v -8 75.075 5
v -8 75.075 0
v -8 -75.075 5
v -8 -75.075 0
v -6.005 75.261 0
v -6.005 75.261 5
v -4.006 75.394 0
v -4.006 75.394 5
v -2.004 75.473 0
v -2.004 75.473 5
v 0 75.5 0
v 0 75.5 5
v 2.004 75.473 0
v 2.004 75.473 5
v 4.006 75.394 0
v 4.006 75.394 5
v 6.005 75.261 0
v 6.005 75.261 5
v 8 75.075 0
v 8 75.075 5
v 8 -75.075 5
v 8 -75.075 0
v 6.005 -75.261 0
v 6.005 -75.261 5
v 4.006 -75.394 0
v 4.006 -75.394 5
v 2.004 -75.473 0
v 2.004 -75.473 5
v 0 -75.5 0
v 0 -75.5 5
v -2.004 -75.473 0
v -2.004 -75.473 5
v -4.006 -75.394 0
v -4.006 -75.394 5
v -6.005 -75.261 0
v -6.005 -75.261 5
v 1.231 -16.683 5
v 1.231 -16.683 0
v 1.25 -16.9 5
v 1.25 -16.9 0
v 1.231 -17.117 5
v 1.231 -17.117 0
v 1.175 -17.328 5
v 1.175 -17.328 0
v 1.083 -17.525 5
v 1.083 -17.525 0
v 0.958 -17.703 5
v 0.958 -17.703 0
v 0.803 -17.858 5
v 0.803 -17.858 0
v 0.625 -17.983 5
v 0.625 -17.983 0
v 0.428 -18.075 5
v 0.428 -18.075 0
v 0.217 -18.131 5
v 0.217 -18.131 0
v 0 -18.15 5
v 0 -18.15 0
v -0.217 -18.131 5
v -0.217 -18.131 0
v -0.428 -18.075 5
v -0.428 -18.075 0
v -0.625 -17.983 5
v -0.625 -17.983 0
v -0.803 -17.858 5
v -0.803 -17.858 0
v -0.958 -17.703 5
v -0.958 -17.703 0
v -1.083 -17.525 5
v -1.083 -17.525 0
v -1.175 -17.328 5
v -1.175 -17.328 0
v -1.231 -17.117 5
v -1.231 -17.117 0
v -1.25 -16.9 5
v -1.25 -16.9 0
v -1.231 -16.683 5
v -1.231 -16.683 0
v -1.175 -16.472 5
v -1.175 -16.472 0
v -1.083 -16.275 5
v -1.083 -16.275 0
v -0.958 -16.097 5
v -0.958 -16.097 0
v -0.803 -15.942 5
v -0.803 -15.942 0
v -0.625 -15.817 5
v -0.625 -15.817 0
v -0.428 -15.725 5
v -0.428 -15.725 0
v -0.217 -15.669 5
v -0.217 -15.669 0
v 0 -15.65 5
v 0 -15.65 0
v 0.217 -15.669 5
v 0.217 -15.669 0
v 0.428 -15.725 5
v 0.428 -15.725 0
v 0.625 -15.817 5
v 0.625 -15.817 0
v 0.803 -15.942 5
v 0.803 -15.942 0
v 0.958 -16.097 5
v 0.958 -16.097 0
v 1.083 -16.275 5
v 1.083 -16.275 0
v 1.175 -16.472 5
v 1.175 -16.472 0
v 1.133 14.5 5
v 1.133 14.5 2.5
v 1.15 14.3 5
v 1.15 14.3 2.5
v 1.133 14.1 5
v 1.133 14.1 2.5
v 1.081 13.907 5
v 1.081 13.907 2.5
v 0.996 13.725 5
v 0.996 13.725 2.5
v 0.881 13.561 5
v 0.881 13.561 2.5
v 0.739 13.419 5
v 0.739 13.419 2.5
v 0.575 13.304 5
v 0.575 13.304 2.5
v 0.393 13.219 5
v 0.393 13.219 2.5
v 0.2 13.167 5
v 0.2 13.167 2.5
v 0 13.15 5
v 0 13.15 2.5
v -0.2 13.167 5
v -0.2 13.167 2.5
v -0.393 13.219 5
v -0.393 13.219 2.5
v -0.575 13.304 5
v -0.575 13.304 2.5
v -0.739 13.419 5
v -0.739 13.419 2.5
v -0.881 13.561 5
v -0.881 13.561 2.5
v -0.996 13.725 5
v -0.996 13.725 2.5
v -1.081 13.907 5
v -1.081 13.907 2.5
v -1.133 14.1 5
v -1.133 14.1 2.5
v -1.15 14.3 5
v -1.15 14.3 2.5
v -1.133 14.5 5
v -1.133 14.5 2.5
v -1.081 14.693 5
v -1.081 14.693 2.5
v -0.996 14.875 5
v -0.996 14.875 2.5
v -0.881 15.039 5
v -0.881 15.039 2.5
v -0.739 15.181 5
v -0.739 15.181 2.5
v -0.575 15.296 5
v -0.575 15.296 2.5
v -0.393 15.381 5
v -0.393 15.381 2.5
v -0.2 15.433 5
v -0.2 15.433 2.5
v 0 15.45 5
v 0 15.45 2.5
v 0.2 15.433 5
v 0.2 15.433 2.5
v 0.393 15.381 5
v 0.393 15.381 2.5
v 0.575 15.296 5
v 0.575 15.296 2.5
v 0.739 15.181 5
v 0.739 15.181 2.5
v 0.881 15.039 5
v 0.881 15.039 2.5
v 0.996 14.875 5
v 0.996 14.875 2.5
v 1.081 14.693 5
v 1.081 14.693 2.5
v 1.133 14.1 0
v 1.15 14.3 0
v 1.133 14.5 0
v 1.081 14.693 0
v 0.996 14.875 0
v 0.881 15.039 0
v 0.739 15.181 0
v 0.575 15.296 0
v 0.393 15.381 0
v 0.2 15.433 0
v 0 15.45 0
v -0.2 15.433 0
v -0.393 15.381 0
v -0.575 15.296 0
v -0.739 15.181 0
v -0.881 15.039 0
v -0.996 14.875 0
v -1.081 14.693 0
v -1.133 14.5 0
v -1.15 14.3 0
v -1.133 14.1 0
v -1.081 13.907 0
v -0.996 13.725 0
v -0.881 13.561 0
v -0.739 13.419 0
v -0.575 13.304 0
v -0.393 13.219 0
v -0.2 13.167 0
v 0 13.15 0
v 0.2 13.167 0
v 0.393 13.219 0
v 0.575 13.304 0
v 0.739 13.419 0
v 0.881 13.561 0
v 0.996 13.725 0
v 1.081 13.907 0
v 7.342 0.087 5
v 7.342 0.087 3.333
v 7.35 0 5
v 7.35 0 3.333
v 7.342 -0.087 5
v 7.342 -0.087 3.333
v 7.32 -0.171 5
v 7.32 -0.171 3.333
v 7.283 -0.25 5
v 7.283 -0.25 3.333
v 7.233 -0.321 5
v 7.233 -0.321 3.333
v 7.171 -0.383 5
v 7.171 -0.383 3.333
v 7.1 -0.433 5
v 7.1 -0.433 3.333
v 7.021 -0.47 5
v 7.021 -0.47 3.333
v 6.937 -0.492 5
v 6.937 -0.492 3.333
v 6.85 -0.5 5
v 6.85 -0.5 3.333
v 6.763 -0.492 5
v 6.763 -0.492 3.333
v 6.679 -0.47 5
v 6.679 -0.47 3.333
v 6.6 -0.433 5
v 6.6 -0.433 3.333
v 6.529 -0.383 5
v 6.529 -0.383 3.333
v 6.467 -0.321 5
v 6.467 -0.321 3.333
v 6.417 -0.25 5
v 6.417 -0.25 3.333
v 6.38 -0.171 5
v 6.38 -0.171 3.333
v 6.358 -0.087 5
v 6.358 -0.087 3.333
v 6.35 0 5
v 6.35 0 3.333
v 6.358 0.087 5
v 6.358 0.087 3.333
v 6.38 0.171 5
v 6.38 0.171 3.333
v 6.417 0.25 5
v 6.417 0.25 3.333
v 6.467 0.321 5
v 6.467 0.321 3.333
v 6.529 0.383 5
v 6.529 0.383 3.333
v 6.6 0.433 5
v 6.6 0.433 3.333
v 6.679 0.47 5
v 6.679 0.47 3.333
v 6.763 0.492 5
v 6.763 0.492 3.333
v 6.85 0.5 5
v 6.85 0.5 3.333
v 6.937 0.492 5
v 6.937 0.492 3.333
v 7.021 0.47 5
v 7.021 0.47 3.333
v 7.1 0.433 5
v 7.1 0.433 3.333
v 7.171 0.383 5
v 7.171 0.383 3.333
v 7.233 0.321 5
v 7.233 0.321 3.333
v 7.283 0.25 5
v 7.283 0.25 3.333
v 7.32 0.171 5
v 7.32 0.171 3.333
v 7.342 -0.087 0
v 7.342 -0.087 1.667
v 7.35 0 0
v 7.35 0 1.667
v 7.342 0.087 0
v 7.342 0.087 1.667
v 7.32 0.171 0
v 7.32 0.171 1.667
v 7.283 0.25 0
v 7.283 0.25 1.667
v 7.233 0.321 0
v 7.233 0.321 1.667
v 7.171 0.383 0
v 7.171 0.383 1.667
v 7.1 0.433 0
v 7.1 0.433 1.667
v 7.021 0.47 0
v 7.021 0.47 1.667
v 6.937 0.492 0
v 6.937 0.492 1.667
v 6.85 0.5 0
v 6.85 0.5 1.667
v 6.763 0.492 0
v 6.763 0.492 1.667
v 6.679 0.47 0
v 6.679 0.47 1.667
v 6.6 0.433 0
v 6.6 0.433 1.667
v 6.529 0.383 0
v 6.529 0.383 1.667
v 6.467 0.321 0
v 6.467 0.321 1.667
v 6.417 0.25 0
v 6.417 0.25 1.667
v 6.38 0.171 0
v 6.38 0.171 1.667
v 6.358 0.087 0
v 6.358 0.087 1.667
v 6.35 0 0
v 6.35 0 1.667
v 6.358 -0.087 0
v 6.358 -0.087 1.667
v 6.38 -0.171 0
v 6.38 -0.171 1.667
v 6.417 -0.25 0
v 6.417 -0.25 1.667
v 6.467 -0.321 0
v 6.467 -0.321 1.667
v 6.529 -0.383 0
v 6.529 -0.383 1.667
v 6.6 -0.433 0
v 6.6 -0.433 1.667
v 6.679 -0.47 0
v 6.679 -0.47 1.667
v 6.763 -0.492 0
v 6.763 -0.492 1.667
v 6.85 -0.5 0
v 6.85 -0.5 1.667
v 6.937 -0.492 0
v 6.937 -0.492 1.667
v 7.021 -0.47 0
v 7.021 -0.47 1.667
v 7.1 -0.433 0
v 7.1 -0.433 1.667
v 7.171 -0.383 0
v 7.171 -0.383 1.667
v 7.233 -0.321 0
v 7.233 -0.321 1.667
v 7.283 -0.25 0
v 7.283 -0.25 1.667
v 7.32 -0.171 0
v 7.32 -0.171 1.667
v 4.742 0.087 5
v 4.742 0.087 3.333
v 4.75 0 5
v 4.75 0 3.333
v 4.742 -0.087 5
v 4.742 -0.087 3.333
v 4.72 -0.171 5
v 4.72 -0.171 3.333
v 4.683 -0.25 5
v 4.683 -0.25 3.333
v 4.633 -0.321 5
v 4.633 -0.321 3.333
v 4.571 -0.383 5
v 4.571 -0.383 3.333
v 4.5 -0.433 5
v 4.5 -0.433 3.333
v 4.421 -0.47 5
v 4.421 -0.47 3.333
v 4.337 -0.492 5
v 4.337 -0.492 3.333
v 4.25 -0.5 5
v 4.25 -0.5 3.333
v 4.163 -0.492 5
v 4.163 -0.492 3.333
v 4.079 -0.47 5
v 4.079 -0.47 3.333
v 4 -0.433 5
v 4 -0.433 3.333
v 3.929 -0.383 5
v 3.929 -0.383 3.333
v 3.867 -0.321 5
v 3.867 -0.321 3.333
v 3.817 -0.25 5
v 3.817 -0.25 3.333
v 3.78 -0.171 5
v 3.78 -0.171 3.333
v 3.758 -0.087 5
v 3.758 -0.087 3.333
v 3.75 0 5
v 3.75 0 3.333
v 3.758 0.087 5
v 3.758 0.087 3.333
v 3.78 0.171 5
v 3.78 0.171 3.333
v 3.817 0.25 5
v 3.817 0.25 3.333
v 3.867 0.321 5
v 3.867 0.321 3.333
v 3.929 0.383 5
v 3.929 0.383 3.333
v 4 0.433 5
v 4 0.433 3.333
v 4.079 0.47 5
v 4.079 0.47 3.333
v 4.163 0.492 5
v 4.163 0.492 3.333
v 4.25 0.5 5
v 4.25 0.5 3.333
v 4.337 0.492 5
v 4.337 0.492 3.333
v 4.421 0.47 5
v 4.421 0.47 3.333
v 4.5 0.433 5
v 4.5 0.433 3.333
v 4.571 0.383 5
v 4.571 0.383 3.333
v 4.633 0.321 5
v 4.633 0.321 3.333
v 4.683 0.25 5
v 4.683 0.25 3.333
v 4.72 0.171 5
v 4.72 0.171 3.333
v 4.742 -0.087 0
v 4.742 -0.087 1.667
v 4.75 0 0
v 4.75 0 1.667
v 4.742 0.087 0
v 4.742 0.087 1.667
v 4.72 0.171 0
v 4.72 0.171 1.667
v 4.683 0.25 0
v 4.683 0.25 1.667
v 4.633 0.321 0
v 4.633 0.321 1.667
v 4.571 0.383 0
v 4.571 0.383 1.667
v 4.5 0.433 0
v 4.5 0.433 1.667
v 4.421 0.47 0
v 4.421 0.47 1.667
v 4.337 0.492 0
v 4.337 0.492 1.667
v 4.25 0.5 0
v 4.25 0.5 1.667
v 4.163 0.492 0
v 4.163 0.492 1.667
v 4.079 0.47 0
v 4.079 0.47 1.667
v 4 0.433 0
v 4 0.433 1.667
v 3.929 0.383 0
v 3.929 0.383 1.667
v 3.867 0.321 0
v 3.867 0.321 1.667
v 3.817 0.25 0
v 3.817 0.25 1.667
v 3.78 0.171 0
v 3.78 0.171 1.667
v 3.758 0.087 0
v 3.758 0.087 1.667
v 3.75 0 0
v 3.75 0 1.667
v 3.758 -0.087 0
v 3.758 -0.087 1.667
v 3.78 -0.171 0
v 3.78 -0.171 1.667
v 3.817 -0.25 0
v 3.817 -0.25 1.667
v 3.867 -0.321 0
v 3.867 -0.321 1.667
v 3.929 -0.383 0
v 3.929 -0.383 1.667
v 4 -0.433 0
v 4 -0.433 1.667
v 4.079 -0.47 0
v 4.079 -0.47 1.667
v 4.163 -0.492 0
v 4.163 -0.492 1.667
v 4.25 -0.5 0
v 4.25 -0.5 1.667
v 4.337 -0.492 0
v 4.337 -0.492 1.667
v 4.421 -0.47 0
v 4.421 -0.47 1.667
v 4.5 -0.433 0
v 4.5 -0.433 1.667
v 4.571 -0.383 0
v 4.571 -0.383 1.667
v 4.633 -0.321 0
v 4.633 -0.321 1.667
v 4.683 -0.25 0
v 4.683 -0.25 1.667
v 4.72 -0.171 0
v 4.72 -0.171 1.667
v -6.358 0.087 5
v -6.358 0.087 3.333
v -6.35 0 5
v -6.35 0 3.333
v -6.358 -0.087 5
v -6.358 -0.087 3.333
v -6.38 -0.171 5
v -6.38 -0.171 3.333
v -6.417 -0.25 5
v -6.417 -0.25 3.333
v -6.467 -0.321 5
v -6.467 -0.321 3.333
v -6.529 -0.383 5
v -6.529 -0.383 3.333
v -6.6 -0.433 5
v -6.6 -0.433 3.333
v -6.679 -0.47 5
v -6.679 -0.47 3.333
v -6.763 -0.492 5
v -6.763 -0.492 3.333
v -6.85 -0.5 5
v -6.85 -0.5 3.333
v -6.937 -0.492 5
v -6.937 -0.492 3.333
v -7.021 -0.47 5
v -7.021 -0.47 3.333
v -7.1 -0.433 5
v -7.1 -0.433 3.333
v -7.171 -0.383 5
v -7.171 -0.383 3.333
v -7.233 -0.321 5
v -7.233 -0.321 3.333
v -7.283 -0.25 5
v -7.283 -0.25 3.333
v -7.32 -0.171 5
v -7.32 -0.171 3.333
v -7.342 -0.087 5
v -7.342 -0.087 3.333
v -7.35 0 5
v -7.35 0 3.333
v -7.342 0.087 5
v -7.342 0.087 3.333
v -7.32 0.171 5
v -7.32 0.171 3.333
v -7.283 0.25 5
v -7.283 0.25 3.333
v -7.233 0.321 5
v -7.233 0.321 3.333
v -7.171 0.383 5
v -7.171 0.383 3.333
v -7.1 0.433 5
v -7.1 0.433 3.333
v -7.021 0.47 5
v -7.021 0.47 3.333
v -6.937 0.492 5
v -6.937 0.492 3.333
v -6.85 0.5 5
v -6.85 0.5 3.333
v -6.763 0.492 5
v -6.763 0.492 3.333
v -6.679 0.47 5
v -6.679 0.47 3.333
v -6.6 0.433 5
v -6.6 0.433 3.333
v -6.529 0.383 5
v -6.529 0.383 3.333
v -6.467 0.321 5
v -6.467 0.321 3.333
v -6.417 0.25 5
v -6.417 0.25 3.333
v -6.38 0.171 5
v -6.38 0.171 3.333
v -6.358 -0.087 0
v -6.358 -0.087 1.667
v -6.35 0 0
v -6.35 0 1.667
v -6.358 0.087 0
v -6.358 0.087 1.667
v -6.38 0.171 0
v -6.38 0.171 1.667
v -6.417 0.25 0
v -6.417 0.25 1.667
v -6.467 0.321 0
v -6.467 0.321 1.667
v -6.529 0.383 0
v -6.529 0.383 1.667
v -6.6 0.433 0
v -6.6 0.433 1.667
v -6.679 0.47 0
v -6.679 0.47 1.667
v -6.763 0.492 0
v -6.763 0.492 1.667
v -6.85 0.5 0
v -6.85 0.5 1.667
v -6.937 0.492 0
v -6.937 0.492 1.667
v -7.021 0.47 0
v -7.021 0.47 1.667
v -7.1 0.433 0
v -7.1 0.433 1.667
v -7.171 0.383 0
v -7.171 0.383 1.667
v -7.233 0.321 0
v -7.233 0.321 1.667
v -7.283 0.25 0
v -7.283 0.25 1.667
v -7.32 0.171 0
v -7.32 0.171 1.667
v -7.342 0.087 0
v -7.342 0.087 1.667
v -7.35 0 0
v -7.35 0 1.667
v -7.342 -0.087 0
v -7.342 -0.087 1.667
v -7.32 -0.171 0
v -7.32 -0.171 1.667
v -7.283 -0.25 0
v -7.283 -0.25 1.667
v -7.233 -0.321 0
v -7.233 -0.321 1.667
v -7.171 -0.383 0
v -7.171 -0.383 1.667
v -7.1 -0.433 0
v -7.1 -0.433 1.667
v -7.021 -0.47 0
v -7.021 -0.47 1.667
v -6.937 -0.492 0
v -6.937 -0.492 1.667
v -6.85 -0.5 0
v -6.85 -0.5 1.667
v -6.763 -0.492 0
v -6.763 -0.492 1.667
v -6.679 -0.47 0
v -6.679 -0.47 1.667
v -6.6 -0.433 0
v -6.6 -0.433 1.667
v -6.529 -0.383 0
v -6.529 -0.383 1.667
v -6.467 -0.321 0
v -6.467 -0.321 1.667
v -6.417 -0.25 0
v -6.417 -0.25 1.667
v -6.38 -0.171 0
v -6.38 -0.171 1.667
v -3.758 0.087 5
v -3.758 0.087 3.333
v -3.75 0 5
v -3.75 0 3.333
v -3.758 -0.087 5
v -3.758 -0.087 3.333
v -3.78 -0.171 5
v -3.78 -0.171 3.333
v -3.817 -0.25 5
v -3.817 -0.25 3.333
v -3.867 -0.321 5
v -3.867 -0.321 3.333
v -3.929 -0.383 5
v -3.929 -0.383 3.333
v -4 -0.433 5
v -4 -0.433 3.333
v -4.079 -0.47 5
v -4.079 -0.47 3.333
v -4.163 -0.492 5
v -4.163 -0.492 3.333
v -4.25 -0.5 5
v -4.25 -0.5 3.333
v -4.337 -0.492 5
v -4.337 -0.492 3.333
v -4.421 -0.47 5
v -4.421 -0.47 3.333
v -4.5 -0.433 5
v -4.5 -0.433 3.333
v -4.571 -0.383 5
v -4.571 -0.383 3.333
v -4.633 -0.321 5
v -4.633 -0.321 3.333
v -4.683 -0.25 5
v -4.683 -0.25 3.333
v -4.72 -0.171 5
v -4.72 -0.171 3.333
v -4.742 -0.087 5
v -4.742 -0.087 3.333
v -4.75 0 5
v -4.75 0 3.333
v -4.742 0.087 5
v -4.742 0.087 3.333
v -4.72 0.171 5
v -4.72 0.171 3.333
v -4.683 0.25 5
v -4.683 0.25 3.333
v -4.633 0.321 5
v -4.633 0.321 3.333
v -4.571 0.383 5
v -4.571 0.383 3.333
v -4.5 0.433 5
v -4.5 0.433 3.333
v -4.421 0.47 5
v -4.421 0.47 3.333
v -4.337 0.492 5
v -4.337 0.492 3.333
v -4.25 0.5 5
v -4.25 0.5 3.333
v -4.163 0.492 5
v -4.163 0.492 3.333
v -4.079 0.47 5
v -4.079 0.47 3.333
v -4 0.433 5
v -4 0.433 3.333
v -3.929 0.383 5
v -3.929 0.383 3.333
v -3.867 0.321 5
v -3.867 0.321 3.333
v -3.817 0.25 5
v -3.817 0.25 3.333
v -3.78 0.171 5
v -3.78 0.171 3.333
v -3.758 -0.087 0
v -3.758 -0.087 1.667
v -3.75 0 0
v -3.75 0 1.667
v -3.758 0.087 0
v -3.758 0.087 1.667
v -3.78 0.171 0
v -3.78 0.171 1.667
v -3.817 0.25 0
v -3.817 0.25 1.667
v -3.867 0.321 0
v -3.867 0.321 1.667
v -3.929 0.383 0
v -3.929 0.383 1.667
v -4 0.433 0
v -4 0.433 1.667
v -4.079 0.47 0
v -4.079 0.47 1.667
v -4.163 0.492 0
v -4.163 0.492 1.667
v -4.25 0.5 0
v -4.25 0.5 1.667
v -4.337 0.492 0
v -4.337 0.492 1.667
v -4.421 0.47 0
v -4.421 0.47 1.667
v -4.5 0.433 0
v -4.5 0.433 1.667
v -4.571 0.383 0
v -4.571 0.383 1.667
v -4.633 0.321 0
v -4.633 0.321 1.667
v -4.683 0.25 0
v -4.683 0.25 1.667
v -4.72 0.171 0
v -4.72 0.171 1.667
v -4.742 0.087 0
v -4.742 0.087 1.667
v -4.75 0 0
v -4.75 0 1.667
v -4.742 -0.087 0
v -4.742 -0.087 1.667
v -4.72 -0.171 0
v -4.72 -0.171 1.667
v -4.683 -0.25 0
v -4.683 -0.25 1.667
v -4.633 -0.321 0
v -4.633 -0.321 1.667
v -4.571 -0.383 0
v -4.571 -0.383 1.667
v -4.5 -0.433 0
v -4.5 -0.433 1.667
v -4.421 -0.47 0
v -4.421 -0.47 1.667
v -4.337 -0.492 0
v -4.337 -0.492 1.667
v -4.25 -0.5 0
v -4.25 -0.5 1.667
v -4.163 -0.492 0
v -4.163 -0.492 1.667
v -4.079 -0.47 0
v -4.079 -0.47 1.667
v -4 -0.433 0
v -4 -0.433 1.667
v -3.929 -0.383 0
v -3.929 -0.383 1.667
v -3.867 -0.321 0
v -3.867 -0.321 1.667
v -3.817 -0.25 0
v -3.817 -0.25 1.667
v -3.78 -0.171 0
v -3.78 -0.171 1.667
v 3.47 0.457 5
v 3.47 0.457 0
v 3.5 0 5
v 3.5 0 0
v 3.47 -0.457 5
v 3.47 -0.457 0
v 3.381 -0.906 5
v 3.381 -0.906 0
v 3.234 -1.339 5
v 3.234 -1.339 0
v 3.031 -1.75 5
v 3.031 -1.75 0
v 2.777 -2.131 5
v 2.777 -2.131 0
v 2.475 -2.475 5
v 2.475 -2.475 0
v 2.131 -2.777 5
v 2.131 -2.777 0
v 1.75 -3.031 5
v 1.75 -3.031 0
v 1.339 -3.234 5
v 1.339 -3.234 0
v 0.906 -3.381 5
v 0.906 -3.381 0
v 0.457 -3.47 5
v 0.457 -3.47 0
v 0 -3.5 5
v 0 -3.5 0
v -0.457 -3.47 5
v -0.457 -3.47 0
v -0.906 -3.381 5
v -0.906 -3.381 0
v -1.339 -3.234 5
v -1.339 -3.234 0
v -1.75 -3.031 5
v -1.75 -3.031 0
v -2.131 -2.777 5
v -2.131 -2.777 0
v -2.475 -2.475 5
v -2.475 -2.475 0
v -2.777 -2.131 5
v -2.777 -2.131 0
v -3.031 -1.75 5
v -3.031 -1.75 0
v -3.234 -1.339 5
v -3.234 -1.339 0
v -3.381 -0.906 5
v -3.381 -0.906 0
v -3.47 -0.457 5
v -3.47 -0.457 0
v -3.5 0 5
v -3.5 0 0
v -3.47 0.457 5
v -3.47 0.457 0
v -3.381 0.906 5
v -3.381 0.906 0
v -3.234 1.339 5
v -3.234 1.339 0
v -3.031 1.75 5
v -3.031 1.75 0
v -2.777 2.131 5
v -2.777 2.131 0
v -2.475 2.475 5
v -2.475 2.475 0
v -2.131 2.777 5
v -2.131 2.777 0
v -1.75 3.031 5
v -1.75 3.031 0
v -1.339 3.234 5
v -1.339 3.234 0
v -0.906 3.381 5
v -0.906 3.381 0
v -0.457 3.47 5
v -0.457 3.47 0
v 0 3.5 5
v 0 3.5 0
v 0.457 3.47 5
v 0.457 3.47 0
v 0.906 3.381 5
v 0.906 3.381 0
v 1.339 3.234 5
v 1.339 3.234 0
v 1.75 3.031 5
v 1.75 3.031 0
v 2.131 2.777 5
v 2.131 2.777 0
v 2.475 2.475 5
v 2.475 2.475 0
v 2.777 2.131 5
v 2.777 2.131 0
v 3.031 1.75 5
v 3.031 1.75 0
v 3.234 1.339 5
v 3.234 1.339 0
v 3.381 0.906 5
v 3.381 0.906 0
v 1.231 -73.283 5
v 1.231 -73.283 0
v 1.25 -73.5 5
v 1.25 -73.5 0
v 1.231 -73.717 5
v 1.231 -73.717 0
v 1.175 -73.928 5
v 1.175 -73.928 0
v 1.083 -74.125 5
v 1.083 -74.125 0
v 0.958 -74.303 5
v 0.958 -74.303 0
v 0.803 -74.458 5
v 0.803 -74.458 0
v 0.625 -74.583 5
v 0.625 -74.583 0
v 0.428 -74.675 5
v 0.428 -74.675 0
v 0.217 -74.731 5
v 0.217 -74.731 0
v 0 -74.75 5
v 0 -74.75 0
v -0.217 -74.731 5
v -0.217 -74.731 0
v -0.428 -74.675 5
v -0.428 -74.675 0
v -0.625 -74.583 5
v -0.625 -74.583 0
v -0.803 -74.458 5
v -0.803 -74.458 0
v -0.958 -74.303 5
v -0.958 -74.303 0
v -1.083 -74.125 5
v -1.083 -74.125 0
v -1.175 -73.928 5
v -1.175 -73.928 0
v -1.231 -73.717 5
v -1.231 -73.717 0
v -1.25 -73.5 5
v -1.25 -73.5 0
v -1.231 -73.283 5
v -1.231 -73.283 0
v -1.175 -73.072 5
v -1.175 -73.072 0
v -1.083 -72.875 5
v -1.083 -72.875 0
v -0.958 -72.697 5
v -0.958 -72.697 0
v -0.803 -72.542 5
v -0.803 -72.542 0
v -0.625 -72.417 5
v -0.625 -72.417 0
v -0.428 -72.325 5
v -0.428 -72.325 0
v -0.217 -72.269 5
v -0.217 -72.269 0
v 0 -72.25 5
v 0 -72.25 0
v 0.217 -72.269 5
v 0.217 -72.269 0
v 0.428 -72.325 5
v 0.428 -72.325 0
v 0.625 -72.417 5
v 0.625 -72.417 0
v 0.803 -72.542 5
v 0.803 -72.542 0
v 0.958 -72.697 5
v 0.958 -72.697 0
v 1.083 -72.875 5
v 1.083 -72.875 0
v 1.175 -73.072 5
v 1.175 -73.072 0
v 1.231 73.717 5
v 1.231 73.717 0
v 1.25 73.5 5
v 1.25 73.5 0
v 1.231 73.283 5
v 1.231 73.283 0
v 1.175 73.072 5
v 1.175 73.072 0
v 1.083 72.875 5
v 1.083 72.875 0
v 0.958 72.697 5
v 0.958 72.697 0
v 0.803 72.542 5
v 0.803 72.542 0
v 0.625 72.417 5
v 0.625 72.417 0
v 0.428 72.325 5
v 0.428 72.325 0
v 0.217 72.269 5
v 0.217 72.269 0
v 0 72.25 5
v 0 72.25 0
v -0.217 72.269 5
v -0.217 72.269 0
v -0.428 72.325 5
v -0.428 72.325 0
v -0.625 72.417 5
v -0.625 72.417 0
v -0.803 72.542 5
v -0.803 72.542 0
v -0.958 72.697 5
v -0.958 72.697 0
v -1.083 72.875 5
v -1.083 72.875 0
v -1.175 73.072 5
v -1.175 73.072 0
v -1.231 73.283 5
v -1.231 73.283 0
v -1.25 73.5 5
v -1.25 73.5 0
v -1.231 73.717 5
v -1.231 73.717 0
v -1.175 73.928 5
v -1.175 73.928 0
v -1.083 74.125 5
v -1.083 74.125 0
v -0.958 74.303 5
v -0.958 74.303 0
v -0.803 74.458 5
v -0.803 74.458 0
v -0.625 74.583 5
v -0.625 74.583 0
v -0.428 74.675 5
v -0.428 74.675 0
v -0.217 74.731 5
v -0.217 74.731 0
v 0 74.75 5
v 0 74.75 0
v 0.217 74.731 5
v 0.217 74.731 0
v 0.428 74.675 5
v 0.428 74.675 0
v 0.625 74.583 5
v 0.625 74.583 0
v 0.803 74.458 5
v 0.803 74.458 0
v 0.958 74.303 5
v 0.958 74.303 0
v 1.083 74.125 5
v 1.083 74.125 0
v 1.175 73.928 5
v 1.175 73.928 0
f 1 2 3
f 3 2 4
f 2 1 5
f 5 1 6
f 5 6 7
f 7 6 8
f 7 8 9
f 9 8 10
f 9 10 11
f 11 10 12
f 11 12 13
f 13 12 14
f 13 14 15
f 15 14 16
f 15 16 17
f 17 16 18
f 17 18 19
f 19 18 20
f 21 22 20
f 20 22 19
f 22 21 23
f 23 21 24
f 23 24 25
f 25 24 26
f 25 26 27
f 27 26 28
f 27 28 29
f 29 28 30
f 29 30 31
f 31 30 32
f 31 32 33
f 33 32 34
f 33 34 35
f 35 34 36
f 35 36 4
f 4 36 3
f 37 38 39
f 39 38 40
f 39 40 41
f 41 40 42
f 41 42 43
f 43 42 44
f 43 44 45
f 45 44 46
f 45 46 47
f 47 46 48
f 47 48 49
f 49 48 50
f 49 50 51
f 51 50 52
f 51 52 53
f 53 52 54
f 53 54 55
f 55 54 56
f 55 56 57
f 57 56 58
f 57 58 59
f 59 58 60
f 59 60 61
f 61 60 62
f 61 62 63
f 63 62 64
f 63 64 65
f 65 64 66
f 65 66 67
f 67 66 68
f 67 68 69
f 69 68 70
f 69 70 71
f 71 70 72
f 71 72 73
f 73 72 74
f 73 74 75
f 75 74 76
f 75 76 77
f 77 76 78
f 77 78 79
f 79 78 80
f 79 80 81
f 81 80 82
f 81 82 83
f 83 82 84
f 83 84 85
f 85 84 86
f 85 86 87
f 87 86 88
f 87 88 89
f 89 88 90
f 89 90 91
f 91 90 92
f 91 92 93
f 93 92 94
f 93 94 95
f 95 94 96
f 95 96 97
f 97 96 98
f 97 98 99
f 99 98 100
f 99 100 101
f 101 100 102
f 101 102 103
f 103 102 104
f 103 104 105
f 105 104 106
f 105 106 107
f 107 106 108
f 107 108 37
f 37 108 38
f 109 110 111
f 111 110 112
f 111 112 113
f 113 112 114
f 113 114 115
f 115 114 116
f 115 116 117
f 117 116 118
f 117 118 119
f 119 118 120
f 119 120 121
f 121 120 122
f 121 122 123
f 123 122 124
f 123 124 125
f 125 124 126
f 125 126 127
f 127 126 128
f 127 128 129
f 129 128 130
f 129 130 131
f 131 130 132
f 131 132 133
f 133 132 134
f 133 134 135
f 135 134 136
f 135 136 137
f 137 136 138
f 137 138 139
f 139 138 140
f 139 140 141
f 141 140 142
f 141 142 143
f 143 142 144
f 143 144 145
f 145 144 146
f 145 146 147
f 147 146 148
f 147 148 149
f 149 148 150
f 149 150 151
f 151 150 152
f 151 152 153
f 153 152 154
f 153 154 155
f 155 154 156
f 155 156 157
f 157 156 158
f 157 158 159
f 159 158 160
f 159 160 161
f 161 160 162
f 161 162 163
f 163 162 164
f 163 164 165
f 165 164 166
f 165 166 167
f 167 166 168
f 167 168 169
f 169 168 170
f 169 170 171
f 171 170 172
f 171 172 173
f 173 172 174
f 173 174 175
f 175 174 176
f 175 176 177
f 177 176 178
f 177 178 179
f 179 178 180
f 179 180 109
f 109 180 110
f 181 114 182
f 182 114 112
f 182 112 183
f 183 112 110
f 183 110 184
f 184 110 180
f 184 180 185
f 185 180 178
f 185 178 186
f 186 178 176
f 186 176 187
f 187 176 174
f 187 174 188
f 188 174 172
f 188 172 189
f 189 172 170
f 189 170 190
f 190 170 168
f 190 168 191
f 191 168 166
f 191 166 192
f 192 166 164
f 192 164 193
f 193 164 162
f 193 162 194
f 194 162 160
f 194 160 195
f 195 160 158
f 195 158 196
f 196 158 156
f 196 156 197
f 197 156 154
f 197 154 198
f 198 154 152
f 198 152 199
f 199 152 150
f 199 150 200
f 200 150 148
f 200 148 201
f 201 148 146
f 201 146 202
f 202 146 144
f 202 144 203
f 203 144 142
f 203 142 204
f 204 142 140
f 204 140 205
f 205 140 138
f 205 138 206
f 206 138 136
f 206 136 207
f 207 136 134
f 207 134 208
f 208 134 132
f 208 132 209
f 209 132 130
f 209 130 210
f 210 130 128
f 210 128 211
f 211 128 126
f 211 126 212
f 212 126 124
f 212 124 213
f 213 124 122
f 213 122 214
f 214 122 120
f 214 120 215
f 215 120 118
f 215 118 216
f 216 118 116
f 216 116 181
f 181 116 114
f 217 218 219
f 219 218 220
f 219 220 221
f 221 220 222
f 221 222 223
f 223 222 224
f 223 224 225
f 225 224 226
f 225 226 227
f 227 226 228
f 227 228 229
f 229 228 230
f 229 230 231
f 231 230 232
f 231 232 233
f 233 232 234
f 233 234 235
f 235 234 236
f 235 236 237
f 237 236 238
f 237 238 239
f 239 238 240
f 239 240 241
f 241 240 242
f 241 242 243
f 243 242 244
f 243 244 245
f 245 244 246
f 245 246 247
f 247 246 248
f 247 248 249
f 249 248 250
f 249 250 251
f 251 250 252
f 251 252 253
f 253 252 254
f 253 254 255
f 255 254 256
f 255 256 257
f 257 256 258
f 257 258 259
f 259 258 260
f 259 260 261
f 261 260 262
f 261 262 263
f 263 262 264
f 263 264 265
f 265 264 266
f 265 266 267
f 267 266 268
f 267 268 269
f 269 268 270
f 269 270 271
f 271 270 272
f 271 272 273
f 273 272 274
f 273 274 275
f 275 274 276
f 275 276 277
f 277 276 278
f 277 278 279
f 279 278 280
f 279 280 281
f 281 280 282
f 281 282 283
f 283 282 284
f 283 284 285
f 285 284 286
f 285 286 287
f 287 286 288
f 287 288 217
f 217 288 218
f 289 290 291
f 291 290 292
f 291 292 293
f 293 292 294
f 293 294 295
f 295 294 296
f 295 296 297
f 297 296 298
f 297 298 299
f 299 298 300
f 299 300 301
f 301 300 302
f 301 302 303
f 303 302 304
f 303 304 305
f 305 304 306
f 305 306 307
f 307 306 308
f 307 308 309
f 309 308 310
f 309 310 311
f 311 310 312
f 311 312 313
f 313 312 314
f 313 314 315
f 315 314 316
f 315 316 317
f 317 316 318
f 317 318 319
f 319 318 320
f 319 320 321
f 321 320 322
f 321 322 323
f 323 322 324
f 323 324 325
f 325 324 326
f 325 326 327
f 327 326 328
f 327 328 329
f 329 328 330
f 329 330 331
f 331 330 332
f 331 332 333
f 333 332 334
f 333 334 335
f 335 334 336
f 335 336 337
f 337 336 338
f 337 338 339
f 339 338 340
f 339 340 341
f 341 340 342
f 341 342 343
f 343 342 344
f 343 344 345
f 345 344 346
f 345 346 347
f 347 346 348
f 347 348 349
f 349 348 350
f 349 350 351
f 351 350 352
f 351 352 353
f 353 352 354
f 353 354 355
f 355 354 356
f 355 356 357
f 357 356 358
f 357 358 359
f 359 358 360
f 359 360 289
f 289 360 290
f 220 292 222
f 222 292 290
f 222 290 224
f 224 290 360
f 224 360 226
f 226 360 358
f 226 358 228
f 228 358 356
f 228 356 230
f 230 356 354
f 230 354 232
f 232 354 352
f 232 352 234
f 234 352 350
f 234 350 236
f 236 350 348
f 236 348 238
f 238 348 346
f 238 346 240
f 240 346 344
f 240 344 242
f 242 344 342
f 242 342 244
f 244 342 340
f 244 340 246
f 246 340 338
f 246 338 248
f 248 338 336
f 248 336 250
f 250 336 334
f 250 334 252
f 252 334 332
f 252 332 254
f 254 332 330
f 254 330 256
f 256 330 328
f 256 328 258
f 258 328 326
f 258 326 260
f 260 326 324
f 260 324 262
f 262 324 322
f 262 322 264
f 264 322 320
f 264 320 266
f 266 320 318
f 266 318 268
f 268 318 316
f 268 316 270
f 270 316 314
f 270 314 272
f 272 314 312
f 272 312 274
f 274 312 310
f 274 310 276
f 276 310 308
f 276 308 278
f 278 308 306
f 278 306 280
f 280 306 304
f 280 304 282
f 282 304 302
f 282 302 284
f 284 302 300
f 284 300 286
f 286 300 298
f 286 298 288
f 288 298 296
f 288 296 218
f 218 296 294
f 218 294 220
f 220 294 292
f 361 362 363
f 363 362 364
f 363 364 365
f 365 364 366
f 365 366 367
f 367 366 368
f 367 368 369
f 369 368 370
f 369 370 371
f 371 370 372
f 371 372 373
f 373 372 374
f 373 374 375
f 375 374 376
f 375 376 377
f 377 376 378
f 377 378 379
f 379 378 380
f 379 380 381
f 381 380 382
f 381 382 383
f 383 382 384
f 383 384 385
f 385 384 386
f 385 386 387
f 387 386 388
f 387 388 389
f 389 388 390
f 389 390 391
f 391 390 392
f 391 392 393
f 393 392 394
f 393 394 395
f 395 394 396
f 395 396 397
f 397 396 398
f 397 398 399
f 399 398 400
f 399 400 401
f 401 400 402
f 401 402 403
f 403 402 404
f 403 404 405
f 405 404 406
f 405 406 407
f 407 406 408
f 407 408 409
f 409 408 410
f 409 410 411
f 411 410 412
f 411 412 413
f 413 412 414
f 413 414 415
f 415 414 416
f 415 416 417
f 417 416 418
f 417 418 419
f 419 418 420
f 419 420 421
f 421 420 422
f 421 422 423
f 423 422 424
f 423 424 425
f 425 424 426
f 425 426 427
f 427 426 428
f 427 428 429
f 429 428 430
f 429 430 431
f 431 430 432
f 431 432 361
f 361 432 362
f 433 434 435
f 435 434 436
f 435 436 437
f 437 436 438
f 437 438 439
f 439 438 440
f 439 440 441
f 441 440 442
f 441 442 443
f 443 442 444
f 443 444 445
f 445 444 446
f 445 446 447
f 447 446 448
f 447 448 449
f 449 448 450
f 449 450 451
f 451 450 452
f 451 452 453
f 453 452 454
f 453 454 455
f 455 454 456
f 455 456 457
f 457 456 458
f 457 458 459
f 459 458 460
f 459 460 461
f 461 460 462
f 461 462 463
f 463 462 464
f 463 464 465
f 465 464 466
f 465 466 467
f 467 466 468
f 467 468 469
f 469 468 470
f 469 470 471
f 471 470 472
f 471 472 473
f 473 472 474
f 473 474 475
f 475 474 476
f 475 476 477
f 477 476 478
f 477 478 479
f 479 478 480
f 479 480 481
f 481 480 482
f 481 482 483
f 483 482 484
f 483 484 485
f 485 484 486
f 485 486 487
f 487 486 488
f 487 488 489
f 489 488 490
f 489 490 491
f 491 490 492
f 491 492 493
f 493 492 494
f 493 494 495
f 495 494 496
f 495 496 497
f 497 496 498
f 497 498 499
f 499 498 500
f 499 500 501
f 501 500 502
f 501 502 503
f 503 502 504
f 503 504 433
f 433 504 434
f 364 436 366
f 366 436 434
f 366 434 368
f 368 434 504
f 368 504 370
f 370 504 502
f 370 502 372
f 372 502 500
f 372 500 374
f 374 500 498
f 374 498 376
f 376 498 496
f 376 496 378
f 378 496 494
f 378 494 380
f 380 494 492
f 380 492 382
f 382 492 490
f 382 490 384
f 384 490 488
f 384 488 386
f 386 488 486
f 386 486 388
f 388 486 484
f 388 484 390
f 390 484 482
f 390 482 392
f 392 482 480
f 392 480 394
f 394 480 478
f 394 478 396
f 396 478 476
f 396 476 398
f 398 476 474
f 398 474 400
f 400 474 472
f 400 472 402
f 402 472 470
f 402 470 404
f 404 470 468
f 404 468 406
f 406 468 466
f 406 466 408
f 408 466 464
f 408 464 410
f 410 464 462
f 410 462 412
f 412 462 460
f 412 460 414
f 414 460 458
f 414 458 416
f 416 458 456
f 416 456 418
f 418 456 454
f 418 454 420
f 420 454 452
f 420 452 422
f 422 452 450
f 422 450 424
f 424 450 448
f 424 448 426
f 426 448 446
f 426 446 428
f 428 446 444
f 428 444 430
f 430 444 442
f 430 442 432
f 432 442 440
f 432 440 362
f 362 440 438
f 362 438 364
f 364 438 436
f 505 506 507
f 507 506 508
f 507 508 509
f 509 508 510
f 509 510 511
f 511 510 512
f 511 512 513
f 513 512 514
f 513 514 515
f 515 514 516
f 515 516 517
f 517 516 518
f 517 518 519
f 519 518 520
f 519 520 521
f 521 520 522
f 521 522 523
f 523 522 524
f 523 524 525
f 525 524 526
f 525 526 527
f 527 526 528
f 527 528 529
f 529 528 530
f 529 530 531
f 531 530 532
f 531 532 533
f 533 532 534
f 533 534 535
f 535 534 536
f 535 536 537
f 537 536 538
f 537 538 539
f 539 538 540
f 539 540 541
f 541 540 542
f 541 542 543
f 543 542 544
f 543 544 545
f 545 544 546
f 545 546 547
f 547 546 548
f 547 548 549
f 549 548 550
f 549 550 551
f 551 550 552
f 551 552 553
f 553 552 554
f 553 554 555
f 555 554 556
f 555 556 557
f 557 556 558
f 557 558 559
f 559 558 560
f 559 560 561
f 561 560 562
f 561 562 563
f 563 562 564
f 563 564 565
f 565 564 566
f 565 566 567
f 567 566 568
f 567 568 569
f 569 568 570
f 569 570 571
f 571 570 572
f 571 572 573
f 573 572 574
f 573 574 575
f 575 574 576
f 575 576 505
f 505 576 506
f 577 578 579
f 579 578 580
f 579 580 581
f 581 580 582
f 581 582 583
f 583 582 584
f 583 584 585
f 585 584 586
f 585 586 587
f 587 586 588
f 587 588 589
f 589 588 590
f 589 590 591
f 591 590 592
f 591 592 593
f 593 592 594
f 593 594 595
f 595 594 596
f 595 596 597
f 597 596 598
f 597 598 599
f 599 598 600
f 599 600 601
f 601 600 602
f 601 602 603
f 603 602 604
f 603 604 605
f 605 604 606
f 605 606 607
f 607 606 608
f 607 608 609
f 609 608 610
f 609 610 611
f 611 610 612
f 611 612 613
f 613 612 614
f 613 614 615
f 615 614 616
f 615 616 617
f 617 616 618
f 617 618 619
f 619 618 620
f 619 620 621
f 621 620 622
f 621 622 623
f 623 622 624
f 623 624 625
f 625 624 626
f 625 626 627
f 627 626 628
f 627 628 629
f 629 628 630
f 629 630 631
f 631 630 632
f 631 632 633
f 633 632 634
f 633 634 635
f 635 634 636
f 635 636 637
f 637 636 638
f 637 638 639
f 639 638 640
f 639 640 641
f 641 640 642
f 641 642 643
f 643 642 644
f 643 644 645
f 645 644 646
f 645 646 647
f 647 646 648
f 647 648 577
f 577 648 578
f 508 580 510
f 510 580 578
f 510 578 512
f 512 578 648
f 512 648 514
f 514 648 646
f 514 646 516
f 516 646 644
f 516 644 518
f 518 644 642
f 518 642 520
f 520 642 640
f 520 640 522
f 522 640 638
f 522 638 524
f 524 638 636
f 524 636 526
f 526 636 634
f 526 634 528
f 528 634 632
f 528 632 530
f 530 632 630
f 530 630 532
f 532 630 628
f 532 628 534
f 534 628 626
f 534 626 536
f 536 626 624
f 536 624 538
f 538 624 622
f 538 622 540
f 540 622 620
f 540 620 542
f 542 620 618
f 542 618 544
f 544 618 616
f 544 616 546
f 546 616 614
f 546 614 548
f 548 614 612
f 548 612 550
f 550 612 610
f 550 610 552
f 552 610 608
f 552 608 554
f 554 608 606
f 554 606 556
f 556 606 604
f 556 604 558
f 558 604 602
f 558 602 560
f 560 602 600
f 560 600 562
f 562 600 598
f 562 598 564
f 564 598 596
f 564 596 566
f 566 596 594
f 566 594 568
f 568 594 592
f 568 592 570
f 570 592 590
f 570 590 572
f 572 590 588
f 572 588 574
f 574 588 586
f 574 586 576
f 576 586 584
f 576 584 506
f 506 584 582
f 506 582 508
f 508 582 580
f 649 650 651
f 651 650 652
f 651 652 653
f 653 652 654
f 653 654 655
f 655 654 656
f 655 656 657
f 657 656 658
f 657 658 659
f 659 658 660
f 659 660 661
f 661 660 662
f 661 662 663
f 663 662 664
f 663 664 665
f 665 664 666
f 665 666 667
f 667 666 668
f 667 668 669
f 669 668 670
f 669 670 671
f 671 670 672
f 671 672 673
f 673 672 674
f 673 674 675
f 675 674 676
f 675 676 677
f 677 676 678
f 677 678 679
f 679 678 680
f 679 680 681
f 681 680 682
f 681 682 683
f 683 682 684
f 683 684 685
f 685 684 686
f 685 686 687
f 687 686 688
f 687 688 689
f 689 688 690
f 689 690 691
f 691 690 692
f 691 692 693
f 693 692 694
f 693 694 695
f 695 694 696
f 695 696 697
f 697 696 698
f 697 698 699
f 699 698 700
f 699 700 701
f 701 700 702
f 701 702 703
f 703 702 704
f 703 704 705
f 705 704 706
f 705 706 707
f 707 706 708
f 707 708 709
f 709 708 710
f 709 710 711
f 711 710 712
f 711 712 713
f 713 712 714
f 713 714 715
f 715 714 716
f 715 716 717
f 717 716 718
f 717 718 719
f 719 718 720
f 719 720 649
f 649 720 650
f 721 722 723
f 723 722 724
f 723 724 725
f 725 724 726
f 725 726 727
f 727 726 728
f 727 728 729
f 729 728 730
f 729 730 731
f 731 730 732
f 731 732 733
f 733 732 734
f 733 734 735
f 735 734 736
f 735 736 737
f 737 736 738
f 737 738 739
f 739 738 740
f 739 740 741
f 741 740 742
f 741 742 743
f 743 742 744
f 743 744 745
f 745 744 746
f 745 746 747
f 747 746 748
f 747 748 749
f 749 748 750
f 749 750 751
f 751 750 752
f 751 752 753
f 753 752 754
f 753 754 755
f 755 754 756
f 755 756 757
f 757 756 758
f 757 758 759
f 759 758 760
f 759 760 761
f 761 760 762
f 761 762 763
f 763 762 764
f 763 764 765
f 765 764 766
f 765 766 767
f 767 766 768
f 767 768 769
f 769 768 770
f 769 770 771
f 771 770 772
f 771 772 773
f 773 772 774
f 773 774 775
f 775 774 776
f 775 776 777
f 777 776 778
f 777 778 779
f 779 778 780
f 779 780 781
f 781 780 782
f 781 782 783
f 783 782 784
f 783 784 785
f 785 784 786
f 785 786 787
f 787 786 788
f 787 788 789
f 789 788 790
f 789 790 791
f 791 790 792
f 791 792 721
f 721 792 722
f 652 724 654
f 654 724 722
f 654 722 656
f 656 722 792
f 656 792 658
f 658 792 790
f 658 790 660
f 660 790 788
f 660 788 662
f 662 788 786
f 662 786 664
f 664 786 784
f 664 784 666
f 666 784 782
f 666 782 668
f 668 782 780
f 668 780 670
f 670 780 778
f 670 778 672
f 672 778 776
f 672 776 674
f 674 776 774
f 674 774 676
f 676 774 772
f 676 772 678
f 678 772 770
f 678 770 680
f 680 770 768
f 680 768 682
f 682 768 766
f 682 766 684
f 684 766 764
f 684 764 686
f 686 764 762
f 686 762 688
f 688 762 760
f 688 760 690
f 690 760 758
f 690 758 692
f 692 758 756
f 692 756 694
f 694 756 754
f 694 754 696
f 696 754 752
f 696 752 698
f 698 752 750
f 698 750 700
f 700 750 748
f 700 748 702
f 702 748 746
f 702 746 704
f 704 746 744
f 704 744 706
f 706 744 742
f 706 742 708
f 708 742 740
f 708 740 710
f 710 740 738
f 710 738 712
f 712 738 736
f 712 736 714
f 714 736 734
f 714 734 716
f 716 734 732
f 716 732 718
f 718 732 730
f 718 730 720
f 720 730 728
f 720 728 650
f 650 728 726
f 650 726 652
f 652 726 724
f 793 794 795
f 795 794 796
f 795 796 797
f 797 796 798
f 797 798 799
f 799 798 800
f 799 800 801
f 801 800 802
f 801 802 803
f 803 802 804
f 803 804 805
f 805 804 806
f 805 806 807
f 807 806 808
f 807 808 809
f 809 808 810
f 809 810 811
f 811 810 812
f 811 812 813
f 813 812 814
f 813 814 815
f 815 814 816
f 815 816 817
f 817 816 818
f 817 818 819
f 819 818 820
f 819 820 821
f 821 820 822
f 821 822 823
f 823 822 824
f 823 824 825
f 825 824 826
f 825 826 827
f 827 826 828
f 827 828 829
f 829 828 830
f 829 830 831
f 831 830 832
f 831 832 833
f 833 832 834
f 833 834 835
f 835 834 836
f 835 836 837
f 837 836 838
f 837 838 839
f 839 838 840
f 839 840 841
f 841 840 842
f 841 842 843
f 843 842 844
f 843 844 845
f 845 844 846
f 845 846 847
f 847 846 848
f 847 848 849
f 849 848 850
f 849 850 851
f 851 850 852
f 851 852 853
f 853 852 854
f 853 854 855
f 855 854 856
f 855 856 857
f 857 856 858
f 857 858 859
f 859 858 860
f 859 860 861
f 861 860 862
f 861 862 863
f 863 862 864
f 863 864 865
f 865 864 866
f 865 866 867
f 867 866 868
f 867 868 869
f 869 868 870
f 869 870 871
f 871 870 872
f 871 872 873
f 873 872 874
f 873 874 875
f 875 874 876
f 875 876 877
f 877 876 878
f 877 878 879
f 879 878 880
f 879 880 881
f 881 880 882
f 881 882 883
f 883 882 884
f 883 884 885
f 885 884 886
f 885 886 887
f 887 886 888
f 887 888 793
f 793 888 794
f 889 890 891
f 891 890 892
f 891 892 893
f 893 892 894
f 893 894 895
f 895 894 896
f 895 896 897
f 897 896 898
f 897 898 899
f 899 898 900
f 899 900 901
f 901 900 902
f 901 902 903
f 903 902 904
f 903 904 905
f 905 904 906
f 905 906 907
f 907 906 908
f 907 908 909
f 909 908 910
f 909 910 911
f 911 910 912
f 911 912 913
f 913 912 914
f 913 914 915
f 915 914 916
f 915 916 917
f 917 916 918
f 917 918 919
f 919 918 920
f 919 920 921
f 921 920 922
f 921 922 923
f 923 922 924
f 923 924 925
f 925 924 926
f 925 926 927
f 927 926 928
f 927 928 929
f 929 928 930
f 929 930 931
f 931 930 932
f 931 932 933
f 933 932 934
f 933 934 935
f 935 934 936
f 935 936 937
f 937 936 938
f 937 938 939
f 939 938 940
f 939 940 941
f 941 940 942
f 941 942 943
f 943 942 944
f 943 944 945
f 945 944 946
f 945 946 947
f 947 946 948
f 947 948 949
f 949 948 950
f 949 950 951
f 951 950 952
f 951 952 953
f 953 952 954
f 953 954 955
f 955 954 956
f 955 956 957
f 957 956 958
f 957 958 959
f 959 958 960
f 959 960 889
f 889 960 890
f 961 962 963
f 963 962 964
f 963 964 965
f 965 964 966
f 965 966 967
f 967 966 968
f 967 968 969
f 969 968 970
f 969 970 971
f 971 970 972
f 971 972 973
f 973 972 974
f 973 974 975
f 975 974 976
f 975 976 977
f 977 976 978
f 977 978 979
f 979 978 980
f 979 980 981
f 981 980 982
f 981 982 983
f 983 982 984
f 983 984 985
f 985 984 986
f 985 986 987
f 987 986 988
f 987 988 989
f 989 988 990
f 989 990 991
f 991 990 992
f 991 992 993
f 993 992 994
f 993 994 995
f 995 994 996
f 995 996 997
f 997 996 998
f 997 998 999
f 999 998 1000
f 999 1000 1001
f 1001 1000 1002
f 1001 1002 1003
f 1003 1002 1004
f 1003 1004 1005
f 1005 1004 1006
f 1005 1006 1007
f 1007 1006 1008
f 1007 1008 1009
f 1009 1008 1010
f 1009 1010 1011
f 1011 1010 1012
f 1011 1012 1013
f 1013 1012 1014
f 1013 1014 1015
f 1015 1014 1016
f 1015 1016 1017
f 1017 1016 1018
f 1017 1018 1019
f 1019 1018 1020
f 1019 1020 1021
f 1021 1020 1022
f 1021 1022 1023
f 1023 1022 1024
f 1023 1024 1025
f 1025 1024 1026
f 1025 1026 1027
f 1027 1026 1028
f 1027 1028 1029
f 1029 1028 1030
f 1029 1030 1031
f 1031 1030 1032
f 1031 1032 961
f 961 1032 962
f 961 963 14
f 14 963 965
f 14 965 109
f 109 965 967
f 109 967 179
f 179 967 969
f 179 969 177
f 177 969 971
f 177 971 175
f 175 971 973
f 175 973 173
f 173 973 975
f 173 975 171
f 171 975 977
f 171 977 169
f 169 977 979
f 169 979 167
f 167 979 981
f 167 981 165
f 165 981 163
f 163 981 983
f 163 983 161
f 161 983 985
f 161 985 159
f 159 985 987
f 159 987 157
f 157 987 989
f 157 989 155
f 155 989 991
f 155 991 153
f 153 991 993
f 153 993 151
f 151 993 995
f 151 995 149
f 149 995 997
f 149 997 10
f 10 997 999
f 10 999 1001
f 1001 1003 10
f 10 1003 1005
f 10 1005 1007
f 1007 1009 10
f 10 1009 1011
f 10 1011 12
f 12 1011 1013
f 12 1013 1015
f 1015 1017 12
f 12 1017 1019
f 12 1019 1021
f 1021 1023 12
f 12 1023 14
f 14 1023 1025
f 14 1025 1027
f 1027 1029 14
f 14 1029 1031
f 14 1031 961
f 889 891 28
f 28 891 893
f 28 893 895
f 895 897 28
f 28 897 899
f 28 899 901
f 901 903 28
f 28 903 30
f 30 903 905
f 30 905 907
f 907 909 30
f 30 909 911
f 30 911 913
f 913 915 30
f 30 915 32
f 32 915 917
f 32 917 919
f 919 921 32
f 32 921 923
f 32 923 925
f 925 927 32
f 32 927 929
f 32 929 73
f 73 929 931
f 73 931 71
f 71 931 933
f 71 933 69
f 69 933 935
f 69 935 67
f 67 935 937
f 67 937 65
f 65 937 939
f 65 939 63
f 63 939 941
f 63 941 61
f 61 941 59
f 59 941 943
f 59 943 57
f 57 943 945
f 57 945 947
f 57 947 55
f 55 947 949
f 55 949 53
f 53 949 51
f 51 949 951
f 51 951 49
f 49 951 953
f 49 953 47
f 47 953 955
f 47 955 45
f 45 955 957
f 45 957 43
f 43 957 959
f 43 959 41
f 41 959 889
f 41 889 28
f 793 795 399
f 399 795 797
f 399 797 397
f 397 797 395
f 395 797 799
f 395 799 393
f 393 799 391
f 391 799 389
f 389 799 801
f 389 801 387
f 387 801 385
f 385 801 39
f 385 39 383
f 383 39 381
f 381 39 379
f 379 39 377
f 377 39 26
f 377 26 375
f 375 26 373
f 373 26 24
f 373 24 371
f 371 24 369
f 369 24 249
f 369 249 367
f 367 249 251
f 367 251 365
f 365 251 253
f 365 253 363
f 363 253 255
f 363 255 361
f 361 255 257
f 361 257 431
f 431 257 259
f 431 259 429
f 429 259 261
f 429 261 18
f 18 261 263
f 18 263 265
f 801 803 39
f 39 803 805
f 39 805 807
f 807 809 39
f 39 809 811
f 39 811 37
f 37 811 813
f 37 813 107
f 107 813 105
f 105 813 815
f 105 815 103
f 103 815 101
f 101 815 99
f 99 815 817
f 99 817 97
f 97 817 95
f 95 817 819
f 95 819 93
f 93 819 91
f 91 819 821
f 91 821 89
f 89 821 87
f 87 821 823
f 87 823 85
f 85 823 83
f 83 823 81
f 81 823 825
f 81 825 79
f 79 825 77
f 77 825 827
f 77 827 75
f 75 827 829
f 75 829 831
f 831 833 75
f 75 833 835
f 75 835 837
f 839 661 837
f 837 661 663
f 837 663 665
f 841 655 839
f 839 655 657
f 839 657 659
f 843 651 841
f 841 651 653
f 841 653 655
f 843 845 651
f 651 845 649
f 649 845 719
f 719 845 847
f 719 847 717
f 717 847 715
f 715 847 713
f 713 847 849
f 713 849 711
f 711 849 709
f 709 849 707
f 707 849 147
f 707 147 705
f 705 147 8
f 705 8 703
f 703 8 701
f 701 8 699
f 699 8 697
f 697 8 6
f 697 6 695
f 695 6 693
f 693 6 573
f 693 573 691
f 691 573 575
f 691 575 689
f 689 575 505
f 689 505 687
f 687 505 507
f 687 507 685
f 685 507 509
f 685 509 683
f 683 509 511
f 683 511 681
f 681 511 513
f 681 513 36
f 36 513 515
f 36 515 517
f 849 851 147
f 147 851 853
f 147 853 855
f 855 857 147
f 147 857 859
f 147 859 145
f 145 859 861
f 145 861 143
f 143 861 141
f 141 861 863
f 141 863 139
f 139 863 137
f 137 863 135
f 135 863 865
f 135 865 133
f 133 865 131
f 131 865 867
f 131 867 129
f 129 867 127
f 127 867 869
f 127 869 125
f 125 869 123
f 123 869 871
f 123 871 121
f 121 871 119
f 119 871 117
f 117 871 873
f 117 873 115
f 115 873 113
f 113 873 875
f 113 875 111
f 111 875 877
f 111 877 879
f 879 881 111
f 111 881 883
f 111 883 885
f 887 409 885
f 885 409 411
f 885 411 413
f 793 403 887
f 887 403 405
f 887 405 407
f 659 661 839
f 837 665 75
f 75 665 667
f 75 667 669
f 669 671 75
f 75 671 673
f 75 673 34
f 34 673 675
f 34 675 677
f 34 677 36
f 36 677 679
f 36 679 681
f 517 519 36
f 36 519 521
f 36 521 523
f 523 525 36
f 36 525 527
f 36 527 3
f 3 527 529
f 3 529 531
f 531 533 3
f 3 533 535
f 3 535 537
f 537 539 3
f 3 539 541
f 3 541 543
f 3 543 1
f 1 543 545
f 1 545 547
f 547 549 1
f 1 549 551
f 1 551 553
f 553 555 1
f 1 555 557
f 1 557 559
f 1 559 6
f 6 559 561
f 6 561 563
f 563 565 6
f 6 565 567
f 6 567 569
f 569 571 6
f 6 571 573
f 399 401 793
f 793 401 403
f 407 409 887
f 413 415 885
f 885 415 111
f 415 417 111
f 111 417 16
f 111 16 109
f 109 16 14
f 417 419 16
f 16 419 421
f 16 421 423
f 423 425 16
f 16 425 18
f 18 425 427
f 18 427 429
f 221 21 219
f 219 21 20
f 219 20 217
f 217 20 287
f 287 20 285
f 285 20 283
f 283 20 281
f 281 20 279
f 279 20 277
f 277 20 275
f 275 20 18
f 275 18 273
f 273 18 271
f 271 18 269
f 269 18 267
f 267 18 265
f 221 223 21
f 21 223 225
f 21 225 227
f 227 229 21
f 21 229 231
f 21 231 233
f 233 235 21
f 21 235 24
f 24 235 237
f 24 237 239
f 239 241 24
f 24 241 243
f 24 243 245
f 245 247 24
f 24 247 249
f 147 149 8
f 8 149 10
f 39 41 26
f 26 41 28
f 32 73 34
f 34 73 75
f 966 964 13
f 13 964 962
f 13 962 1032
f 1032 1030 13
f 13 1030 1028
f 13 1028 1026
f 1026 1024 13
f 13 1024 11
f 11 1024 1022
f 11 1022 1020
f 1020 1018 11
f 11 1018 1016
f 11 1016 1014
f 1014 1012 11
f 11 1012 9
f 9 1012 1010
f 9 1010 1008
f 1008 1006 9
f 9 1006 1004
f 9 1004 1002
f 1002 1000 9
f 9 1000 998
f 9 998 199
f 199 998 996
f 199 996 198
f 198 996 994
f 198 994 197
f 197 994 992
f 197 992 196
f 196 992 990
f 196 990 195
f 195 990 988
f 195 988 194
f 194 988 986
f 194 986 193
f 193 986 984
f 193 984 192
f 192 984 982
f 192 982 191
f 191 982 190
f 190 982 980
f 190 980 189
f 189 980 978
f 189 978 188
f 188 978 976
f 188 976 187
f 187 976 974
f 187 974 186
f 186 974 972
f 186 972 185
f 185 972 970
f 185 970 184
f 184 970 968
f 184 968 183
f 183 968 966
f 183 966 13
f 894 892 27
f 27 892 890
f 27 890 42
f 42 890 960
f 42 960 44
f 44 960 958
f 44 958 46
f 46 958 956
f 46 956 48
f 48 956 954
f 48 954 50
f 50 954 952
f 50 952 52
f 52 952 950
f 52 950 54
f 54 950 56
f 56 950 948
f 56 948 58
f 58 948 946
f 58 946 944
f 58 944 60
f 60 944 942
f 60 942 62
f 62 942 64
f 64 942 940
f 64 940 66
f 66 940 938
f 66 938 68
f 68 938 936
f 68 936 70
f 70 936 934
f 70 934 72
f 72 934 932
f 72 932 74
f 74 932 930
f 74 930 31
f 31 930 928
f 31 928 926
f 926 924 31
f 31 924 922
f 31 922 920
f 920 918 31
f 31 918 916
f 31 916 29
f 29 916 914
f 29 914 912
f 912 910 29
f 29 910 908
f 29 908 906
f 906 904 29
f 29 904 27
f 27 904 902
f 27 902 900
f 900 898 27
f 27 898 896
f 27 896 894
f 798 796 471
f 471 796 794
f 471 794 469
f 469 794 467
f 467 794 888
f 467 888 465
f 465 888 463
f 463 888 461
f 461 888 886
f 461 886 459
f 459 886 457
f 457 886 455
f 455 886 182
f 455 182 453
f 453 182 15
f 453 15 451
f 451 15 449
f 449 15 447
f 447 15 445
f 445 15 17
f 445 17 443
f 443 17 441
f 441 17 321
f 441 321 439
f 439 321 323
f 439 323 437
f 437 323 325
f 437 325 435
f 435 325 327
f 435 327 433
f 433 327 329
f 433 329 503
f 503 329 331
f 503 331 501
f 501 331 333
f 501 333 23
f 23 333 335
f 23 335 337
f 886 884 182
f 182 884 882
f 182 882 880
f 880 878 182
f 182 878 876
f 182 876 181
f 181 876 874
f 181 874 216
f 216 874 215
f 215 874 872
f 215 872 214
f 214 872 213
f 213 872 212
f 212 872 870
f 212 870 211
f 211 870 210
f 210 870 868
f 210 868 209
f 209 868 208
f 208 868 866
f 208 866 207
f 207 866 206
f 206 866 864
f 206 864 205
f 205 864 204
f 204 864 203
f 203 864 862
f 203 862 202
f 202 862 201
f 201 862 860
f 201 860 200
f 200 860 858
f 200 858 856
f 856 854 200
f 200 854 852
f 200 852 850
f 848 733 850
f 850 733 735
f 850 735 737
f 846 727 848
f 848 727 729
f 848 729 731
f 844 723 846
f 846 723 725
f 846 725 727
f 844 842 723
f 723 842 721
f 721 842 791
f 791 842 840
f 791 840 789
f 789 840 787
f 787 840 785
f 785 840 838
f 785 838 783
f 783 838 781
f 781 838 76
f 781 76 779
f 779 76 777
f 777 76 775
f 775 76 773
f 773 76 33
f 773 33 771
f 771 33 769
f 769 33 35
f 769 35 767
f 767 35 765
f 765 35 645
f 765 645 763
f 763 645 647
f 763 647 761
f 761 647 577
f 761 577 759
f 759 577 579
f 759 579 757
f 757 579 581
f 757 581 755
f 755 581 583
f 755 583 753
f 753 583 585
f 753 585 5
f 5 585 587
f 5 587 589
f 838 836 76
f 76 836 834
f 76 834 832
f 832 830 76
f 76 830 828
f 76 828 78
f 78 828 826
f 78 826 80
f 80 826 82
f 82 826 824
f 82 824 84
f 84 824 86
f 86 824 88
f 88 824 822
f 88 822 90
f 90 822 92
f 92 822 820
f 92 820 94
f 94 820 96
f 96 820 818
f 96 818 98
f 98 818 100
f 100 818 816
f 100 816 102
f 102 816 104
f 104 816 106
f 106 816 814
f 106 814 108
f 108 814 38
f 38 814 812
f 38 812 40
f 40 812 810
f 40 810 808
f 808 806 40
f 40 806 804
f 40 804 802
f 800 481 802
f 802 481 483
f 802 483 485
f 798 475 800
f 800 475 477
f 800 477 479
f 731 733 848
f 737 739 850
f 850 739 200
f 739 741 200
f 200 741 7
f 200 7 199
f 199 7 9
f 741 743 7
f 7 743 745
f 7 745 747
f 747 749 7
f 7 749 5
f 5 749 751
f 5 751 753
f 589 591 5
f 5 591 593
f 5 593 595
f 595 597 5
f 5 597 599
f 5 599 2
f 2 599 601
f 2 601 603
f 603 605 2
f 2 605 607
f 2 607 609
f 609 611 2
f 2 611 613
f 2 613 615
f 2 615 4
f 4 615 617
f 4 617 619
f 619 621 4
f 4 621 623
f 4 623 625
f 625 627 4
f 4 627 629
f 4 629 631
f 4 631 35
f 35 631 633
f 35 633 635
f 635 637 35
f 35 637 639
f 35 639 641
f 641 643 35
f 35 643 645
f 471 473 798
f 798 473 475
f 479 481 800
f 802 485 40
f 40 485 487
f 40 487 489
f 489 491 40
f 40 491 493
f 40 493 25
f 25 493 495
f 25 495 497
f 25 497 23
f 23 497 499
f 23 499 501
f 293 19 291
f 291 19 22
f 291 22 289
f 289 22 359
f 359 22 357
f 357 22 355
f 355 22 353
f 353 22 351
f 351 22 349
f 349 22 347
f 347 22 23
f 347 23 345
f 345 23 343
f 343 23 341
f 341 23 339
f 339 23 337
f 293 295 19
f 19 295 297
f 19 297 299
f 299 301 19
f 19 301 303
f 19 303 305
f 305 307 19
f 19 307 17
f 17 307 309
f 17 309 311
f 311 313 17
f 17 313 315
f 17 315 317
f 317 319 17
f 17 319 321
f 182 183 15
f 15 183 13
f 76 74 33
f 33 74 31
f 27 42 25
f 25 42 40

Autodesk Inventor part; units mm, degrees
ref_plane "YZ Plane" through (0, 0, 0) normal (1, 0, 0) x (0, 1, 0)
ref_plane "XZ Plane" through (0, 0, 0) normal (0, 1, 0) x (-1, 0, 0)
ref_plane "XY Plane" through (0, 0, 0) normal (0, 0, 1) x (1, 0, 0)
sketch "스케치1" plane through (0, 0, 0) normal (0, 0, 1) x (1, 0, 0)
  line L0 (-8, -75.5) -> (8, -75.5)
  line L1 (8, -75.5) -> (8, 75.5)
  line L2 (8, 75.5) -> (-8, 75.5)
  line L3 (-8, 75.5) -> (-8, -75.5)
  line L4 (-8, -75.5) -> (8, 75.5) construction
  line L5 (8, -75.5) -> (-8, 75.5) construction
  circle A0 centre (0, 0) radius 75.5
  circle A1 centre (0, 73.5) radius 1.25
  line L6 (0, 0) -> (8, 0) construction
  circle A2 centre (0, -73.5) radius 1.25
  circle A3 centre (0, 0) radius 3.5
  circle A4 centre (-4.25, 0) radius 0.5
  circle A5 centre (-6.85, 0) radius 0.5
  line L7 (0, 0) -> (0, 3.196) construction
  circle A6 centre (4.25, 0) radius 0.5
  circle A7 centre (6.85, 0) radius 0.5
  circle A8 centre (0, 14.3) radius 1.15
  circle A9 centre (0, -16.9) radius 1.25
  point P0 (0, 75.5)
  point P1 (8, -75.075)
  point P2 (8, 75.075)
  point P3 (-8, 75.075)
  point P4 (-8, -75.075)
  dimension "d1" = 151
  dimension "d0" = 16
  dimension "d2" = 2.5
  dimension "d3" = 73.5
  dimension "d4" = 7
  dimension "d5" = 1
  dimension "d6" = 1
  dimension "d7" = 8.5
  dimension "d8" = 12.7
  dimension "d9" = 2.3
  dimension "d13" = 14.3
  dimension "d14" = 2.5
  dimension "d15" = 16.9
extrude "돌출1" add sketch "스케치1" along normal blind 5 contours A0 L3 L1
properties part number "상단 서보모터 고정 판"
